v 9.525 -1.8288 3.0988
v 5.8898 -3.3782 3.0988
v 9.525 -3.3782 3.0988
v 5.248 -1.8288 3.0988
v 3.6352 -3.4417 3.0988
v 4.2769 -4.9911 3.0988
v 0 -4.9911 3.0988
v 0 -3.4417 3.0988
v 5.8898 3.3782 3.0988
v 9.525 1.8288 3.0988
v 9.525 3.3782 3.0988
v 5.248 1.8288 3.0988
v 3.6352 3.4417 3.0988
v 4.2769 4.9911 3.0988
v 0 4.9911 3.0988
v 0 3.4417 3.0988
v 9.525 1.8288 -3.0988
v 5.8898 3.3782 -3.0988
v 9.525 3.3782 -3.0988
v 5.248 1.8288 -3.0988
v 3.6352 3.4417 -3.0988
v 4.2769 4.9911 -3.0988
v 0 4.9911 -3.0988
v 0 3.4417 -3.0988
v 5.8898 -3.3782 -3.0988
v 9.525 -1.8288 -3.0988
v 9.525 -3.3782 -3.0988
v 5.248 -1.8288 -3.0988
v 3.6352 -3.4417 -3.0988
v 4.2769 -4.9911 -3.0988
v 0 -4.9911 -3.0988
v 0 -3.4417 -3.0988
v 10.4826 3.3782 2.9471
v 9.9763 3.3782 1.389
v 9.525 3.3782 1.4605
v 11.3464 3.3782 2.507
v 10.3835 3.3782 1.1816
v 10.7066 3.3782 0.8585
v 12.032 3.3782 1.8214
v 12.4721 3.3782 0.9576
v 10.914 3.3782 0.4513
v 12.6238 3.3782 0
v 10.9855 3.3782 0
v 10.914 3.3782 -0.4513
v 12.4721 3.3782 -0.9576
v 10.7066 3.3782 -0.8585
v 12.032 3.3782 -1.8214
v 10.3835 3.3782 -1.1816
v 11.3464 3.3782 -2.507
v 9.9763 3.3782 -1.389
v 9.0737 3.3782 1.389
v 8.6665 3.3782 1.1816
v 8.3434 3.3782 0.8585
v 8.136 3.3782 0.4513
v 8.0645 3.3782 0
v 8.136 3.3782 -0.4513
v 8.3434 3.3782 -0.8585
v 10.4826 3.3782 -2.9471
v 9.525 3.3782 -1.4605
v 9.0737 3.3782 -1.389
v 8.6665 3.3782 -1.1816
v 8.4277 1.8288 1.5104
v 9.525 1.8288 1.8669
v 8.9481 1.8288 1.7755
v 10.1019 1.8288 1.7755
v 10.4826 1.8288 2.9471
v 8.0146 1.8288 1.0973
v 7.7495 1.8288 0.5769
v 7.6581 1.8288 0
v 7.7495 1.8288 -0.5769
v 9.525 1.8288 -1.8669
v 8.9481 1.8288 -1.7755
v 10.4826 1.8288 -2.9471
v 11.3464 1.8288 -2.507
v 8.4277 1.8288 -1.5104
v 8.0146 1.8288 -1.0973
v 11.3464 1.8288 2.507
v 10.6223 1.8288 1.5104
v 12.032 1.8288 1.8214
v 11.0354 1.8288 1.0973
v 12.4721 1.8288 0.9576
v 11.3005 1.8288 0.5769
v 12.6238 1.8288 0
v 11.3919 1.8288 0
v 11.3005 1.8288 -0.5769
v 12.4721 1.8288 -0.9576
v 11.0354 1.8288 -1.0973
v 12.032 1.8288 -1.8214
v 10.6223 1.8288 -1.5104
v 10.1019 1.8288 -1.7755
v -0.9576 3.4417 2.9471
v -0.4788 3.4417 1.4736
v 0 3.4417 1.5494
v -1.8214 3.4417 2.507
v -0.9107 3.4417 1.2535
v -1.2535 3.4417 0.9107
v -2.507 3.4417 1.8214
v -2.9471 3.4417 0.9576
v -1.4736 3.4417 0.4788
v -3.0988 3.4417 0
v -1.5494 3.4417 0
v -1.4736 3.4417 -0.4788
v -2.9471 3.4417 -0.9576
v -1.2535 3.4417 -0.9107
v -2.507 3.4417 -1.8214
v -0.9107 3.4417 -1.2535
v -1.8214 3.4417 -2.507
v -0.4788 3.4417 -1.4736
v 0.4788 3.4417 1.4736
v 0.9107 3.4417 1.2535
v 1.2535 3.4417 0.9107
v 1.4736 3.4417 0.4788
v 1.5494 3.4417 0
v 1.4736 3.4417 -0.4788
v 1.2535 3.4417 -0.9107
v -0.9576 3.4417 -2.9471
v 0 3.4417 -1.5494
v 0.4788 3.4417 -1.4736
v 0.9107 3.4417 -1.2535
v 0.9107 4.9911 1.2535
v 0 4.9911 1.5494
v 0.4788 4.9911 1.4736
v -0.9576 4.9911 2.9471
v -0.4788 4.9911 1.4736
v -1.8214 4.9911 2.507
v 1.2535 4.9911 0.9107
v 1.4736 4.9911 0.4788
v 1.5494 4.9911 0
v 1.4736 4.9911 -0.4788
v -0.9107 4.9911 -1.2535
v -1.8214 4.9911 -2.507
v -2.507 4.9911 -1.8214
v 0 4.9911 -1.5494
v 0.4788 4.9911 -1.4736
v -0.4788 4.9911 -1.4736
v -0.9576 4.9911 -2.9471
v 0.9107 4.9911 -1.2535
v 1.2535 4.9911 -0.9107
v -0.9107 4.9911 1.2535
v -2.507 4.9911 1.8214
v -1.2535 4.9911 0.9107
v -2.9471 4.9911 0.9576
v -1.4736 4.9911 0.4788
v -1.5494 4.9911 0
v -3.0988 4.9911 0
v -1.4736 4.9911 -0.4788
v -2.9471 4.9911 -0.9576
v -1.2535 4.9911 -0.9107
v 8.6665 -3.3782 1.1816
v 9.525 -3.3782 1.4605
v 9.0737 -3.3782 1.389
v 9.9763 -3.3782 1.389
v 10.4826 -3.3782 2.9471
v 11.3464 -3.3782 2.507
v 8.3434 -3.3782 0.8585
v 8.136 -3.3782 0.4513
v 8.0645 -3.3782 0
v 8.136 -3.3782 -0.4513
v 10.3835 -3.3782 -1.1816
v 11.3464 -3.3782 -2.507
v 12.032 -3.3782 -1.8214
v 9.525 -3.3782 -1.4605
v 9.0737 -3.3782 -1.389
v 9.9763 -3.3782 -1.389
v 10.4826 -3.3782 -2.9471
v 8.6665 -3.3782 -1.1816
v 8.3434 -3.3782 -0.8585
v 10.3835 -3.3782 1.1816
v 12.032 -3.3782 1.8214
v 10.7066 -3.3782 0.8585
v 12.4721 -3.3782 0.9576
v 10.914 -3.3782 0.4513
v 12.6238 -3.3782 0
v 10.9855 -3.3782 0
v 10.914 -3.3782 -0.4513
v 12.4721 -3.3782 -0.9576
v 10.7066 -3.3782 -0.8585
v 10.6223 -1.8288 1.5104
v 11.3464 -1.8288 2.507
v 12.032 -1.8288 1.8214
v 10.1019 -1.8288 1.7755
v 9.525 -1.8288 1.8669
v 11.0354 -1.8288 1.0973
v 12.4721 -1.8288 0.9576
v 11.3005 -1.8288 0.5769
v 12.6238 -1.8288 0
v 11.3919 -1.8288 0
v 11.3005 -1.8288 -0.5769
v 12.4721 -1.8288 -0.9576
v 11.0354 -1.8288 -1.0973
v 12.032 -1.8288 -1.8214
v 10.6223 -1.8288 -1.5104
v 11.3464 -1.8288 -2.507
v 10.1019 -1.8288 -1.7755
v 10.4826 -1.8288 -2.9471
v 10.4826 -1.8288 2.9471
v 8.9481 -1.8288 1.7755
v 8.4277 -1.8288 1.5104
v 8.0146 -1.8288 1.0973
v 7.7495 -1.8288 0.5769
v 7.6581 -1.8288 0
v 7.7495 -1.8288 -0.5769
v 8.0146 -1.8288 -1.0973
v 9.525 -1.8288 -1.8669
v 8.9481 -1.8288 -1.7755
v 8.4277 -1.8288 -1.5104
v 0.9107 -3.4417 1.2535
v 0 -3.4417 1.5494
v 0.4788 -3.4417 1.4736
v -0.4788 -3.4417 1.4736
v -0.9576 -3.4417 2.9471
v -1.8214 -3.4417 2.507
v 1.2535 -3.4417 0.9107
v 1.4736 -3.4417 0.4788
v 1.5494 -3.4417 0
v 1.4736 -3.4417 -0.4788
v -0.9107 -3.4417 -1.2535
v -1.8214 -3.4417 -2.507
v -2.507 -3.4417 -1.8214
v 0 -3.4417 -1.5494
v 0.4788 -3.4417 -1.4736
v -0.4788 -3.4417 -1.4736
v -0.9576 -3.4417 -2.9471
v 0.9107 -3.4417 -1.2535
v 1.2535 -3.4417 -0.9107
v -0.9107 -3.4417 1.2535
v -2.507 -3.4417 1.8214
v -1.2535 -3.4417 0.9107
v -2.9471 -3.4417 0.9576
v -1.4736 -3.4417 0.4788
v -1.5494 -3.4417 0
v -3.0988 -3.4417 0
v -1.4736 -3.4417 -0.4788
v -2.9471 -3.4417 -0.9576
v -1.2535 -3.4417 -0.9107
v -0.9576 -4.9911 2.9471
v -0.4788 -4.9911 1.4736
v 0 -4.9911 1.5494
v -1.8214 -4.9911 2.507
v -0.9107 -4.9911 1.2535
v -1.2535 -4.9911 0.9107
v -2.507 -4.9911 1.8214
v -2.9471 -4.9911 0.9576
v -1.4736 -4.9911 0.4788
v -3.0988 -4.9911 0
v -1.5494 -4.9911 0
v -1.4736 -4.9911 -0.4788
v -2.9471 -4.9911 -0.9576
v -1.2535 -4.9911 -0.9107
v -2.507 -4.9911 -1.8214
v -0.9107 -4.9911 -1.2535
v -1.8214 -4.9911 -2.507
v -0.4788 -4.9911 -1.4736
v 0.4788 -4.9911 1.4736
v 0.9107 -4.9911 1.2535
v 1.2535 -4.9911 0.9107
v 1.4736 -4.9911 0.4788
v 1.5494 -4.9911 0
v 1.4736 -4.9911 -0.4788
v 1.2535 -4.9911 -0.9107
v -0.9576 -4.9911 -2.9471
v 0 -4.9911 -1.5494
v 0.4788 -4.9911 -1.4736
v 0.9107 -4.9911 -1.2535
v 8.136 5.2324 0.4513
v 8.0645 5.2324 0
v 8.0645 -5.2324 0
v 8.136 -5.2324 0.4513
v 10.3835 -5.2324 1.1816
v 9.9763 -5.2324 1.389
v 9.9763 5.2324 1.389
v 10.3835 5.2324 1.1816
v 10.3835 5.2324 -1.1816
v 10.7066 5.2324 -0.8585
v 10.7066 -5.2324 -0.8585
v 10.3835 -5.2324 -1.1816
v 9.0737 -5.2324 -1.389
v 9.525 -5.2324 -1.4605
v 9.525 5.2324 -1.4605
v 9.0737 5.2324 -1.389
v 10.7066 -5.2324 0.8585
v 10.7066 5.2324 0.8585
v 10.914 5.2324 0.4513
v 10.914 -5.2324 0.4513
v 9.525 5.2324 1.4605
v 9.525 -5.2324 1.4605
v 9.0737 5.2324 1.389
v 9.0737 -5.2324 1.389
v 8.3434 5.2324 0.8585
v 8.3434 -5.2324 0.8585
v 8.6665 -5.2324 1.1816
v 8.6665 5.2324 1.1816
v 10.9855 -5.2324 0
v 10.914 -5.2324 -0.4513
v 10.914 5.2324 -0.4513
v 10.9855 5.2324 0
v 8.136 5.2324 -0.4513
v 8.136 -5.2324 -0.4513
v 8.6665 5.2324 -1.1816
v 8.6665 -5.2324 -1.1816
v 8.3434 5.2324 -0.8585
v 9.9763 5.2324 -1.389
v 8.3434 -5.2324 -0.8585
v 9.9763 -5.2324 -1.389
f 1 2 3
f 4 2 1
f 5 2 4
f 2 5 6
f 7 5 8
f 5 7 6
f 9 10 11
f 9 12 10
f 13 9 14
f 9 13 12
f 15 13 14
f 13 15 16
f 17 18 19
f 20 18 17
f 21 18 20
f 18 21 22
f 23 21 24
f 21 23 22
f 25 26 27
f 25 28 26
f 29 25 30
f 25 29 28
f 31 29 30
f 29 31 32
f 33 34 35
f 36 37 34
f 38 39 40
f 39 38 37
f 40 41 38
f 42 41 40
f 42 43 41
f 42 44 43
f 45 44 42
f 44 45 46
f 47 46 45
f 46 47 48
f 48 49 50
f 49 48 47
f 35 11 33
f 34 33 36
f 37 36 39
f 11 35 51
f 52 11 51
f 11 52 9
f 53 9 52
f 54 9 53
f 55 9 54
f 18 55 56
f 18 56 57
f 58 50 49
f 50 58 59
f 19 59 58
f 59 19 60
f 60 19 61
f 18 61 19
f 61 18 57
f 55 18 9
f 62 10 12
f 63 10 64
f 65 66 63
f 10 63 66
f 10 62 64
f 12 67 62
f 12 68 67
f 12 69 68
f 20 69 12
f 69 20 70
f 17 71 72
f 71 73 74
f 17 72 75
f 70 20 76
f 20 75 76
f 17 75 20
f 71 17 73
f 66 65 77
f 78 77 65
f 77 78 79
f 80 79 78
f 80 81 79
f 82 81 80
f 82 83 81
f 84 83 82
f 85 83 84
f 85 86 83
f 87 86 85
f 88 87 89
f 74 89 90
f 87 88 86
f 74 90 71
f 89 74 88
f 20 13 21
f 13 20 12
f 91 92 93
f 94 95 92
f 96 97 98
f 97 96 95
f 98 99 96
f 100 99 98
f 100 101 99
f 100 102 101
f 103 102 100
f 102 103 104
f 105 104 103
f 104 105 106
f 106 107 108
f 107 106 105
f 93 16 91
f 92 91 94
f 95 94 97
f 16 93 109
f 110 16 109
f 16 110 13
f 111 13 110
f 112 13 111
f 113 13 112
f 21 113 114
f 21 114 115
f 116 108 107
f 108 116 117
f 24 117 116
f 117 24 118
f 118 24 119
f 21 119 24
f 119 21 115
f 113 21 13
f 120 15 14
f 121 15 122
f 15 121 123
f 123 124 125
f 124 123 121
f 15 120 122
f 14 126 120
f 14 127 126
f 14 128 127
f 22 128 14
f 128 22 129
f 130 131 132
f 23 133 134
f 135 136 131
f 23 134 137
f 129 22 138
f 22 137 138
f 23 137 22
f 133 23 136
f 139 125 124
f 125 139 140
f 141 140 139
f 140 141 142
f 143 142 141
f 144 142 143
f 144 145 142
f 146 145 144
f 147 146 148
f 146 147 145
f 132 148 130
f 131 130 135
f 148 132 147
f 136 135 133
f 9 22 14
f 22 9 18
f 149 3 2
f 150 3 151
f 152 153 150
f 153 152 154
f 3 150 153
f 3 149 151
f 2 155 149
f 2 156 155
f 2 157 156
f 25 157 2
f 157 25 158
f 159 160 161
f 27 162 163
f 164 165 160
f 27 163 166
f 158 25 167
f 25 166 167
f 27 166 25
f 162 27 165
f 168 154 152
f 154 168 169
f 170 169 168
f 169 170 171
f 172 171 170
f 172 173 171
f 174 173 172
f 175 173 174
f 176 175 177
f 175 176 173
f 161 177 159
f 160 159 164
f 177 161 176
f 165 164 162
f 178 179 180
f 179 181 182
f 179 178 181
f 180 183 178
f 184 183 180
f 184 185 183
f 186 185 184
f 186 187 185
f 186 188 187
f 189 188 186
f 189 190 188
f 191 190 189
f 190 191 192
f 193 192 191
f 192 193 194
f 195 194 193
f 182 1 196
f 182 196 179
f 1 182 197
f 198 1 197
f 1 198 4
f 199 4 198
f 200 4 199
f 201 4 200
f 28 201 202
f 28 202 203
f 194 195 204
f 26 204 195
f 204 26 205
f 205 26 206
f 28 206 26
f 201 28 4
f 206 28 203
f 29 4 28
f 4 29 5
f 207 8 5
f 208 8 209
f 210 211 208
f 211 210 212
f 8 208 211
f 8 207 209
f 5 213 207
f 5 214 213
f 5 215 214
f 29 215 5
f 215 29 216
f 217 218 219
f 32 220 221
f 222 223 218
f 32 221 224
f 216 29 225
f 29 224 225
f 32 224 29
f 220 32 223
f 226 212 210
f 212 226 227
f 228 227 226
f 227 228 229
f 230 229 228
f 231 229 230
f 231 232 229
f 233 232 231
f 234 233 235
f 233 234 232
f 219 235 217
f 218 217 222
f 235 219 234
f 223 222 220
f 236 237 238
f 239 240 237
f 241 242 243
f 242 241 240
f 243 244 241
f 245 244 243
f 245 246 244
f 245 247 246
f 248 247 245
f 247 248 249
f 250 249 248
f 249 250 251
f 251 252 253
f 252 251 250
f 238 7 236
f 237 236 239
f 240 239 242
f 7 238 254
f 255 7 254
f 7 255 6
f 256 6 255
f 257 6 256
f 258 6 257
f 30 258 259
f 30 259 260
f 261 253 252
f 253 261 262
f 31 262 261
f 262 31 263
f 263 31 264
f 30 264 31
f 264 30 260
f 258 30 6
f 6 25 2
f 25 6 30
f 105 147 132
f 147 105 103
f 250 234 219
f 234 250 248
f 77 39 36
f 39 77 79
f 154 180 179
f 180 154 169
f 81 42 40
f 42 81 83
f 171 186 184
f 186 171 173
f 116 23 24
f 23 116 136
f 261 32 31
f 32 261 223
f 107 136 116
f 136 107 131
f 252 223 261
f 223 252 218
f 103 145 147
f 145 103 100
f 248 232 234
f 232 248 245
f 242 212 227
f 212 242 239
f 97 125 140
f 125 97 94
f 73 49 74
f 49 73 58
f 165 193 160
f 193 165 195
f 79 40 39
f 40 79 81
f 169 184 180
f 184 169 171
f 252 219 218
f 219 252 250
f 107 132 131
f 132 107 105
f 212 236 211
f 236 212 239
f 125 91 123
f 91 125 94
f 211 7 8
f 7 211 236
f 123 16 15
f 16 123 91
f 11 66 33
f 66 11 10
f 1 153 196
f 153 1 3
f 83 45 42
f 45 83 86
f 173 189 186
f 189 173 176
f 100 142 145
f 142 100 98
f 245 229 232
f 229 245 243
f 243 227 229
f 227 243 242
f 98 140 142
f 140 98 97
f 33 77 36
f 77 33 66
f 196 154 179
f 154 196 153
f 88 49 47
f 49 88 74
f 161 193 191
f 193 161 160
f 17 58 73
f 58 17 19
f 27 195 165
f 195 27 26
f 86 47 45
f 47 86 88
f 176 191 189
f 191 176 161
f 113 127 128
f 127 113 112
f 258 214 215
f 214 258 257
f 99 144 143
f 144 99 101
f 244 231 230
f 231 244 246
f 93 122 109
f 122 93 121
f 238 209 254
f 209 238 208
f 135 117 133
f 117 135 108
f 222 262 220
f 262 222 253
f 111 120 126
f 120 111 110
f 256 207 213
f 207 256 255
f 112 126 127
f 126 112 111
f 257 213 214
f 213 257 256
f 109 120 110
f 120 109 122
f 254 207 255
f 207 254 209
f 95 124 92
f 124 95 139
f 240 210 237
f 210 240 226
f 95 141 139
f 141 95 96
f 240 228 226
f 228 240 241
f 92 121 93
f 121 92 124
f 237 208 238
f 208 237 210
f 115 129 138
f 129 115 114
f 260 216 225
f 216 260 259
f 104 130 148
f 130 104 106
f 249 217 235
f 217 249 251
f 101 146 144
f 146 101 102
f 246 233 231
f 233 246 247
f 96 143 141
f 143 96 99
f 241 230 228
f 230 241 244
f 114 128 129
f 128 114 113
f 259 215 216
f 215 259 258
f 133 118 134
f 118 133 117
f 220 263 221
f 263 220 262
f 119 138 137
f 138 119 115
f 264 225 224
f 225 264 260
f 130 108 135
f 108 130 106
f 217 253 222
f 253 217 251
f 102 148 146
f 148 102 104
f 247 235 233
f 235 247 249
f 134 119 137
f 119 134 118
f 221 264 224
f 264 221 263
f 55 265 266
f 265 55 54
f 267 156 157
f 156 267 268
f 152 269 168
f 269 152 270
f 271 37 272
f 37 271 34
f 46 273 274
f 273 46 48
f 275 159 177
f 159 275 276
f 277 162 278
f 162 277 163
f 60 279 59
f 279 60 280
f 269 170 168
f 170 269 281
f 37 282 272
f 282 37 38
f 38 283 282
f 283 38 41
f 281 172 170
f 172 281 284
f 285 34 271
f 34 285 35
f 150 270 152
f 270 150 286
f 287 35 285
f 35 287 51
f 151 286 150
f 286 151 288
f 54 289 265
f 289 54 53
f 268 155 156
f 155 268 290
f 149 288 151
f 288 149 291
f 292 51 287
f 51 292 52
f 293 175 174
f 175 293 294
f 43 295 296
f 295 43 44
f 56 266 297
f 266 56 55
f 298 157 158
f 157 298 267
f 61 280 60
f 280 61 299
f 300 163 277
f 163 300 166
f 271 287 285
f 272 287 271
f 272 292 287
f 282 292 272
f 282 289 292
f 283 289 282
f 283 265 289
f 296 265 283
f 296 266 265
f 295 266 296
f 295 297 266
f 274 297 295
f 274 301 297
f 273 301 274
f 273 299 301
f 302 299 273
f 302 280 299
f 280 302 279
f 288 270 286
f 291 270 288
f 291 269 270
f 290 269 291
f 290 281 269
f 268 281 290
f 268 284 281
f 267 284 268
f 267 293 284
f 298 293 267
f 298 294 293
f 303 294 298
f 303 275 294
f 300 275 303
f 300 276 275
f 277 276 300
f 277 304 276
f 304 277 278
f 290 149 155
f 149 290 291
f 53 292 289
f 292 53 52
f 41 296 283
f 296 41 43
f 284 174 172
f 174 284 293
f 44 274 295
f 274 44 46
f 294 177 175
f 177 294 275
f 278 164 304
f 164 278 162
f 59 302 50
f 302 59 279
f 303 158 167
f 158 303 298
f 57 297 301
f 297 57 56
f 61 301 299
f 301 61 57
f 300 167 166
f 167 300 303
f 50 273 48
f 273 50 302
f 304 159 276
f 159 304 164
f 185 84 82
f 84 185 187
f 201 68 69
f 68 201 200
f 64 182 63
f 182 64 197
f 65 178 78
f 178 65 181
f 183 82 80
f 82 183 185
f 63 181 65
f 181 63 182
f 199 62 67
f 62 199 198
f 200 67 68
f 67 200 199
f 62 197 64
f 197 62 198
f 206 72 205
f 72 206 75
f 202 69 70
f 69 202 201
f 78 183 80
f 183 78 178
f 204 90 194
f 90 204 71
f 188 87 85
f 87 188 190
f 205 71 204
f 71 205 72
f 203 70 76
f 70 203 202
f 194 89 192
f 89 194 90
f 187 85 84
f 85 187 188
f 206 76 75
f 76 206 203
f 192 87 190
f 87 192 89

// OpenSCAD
// P74 Plastic Meccano chain link
//
// V1.0 Sun, April 14 2019 WH
//
eps=0.04;
$fn=20;
inch=25.4;
   
module P74() {
  
   hole_dia = 0.122*inch;
   axle_dia = 0.115*inch;
   axle_lng = 0.412*inch;
   link_dia = 0.147*inch;
   major_width = 0.393*inch;
   thickness = 0.061*inch;
   major_gap = major_width-2*thickness;
   minor_width = 0.266*inch;
   minor_gap = minor_width-2*thickness;
   height = 0.244*inch;
   pitch = 0.375*inch;
   length = pitch+height;

   module side() {
      
      mid = major_width/4 - minor_width/4 + thickness/2;
      x = sqrt(thickness*thickness/2);

      translate([-height/2,0,0])
      linear_extrude(height=height)
         polygon(
            points=[
            [0,0],
            [0,thickness],
            [length/2-mid-x+thickness,thickness],
            [length/2+mid-x,thickness+(major_width-minor_width)/2],
            [length,thickness+(major_width-minor_width)/2],
            [length,(major_width-minor_width)/2],
            [length/2+mid+x-thickness,(major_width-minor_width)/2],
            [length/2-mid+x,0]
         ]
      );
   }

   difference() {
      intersection() {
         // round ended hull
         hull() {
            cylinder(h=major_width,d=height,center=true);
           translate([pitch,0,0])
              cylinder(h=major_width,d=height,center=true);
         }
         // sides
         union() {
            translate([0,height/2,0])
               rotate([90,0,0])
                  translate([0,-major_width/2,0])
                     side();
            translate([0,-height/2,0])
               rotate([-90,0,0])
                  translate([0,-major_width/2,0])
                     side();
         }
      }
      // - link holes
      cylinder(h=major_width+2*eps,d=hole_dia,center=true);
   }
   // + outer link axle
   translate([pitch,0,0])
      cylinder(h=axle_lng,d=axle_dia,center=true);
   // + inner link axle
   translate([pitch,0,0])
      cylinder(h=minor_gap+2*eps,d=link_dia,center=true);
}

rotate([90,0,0])
   P74();
